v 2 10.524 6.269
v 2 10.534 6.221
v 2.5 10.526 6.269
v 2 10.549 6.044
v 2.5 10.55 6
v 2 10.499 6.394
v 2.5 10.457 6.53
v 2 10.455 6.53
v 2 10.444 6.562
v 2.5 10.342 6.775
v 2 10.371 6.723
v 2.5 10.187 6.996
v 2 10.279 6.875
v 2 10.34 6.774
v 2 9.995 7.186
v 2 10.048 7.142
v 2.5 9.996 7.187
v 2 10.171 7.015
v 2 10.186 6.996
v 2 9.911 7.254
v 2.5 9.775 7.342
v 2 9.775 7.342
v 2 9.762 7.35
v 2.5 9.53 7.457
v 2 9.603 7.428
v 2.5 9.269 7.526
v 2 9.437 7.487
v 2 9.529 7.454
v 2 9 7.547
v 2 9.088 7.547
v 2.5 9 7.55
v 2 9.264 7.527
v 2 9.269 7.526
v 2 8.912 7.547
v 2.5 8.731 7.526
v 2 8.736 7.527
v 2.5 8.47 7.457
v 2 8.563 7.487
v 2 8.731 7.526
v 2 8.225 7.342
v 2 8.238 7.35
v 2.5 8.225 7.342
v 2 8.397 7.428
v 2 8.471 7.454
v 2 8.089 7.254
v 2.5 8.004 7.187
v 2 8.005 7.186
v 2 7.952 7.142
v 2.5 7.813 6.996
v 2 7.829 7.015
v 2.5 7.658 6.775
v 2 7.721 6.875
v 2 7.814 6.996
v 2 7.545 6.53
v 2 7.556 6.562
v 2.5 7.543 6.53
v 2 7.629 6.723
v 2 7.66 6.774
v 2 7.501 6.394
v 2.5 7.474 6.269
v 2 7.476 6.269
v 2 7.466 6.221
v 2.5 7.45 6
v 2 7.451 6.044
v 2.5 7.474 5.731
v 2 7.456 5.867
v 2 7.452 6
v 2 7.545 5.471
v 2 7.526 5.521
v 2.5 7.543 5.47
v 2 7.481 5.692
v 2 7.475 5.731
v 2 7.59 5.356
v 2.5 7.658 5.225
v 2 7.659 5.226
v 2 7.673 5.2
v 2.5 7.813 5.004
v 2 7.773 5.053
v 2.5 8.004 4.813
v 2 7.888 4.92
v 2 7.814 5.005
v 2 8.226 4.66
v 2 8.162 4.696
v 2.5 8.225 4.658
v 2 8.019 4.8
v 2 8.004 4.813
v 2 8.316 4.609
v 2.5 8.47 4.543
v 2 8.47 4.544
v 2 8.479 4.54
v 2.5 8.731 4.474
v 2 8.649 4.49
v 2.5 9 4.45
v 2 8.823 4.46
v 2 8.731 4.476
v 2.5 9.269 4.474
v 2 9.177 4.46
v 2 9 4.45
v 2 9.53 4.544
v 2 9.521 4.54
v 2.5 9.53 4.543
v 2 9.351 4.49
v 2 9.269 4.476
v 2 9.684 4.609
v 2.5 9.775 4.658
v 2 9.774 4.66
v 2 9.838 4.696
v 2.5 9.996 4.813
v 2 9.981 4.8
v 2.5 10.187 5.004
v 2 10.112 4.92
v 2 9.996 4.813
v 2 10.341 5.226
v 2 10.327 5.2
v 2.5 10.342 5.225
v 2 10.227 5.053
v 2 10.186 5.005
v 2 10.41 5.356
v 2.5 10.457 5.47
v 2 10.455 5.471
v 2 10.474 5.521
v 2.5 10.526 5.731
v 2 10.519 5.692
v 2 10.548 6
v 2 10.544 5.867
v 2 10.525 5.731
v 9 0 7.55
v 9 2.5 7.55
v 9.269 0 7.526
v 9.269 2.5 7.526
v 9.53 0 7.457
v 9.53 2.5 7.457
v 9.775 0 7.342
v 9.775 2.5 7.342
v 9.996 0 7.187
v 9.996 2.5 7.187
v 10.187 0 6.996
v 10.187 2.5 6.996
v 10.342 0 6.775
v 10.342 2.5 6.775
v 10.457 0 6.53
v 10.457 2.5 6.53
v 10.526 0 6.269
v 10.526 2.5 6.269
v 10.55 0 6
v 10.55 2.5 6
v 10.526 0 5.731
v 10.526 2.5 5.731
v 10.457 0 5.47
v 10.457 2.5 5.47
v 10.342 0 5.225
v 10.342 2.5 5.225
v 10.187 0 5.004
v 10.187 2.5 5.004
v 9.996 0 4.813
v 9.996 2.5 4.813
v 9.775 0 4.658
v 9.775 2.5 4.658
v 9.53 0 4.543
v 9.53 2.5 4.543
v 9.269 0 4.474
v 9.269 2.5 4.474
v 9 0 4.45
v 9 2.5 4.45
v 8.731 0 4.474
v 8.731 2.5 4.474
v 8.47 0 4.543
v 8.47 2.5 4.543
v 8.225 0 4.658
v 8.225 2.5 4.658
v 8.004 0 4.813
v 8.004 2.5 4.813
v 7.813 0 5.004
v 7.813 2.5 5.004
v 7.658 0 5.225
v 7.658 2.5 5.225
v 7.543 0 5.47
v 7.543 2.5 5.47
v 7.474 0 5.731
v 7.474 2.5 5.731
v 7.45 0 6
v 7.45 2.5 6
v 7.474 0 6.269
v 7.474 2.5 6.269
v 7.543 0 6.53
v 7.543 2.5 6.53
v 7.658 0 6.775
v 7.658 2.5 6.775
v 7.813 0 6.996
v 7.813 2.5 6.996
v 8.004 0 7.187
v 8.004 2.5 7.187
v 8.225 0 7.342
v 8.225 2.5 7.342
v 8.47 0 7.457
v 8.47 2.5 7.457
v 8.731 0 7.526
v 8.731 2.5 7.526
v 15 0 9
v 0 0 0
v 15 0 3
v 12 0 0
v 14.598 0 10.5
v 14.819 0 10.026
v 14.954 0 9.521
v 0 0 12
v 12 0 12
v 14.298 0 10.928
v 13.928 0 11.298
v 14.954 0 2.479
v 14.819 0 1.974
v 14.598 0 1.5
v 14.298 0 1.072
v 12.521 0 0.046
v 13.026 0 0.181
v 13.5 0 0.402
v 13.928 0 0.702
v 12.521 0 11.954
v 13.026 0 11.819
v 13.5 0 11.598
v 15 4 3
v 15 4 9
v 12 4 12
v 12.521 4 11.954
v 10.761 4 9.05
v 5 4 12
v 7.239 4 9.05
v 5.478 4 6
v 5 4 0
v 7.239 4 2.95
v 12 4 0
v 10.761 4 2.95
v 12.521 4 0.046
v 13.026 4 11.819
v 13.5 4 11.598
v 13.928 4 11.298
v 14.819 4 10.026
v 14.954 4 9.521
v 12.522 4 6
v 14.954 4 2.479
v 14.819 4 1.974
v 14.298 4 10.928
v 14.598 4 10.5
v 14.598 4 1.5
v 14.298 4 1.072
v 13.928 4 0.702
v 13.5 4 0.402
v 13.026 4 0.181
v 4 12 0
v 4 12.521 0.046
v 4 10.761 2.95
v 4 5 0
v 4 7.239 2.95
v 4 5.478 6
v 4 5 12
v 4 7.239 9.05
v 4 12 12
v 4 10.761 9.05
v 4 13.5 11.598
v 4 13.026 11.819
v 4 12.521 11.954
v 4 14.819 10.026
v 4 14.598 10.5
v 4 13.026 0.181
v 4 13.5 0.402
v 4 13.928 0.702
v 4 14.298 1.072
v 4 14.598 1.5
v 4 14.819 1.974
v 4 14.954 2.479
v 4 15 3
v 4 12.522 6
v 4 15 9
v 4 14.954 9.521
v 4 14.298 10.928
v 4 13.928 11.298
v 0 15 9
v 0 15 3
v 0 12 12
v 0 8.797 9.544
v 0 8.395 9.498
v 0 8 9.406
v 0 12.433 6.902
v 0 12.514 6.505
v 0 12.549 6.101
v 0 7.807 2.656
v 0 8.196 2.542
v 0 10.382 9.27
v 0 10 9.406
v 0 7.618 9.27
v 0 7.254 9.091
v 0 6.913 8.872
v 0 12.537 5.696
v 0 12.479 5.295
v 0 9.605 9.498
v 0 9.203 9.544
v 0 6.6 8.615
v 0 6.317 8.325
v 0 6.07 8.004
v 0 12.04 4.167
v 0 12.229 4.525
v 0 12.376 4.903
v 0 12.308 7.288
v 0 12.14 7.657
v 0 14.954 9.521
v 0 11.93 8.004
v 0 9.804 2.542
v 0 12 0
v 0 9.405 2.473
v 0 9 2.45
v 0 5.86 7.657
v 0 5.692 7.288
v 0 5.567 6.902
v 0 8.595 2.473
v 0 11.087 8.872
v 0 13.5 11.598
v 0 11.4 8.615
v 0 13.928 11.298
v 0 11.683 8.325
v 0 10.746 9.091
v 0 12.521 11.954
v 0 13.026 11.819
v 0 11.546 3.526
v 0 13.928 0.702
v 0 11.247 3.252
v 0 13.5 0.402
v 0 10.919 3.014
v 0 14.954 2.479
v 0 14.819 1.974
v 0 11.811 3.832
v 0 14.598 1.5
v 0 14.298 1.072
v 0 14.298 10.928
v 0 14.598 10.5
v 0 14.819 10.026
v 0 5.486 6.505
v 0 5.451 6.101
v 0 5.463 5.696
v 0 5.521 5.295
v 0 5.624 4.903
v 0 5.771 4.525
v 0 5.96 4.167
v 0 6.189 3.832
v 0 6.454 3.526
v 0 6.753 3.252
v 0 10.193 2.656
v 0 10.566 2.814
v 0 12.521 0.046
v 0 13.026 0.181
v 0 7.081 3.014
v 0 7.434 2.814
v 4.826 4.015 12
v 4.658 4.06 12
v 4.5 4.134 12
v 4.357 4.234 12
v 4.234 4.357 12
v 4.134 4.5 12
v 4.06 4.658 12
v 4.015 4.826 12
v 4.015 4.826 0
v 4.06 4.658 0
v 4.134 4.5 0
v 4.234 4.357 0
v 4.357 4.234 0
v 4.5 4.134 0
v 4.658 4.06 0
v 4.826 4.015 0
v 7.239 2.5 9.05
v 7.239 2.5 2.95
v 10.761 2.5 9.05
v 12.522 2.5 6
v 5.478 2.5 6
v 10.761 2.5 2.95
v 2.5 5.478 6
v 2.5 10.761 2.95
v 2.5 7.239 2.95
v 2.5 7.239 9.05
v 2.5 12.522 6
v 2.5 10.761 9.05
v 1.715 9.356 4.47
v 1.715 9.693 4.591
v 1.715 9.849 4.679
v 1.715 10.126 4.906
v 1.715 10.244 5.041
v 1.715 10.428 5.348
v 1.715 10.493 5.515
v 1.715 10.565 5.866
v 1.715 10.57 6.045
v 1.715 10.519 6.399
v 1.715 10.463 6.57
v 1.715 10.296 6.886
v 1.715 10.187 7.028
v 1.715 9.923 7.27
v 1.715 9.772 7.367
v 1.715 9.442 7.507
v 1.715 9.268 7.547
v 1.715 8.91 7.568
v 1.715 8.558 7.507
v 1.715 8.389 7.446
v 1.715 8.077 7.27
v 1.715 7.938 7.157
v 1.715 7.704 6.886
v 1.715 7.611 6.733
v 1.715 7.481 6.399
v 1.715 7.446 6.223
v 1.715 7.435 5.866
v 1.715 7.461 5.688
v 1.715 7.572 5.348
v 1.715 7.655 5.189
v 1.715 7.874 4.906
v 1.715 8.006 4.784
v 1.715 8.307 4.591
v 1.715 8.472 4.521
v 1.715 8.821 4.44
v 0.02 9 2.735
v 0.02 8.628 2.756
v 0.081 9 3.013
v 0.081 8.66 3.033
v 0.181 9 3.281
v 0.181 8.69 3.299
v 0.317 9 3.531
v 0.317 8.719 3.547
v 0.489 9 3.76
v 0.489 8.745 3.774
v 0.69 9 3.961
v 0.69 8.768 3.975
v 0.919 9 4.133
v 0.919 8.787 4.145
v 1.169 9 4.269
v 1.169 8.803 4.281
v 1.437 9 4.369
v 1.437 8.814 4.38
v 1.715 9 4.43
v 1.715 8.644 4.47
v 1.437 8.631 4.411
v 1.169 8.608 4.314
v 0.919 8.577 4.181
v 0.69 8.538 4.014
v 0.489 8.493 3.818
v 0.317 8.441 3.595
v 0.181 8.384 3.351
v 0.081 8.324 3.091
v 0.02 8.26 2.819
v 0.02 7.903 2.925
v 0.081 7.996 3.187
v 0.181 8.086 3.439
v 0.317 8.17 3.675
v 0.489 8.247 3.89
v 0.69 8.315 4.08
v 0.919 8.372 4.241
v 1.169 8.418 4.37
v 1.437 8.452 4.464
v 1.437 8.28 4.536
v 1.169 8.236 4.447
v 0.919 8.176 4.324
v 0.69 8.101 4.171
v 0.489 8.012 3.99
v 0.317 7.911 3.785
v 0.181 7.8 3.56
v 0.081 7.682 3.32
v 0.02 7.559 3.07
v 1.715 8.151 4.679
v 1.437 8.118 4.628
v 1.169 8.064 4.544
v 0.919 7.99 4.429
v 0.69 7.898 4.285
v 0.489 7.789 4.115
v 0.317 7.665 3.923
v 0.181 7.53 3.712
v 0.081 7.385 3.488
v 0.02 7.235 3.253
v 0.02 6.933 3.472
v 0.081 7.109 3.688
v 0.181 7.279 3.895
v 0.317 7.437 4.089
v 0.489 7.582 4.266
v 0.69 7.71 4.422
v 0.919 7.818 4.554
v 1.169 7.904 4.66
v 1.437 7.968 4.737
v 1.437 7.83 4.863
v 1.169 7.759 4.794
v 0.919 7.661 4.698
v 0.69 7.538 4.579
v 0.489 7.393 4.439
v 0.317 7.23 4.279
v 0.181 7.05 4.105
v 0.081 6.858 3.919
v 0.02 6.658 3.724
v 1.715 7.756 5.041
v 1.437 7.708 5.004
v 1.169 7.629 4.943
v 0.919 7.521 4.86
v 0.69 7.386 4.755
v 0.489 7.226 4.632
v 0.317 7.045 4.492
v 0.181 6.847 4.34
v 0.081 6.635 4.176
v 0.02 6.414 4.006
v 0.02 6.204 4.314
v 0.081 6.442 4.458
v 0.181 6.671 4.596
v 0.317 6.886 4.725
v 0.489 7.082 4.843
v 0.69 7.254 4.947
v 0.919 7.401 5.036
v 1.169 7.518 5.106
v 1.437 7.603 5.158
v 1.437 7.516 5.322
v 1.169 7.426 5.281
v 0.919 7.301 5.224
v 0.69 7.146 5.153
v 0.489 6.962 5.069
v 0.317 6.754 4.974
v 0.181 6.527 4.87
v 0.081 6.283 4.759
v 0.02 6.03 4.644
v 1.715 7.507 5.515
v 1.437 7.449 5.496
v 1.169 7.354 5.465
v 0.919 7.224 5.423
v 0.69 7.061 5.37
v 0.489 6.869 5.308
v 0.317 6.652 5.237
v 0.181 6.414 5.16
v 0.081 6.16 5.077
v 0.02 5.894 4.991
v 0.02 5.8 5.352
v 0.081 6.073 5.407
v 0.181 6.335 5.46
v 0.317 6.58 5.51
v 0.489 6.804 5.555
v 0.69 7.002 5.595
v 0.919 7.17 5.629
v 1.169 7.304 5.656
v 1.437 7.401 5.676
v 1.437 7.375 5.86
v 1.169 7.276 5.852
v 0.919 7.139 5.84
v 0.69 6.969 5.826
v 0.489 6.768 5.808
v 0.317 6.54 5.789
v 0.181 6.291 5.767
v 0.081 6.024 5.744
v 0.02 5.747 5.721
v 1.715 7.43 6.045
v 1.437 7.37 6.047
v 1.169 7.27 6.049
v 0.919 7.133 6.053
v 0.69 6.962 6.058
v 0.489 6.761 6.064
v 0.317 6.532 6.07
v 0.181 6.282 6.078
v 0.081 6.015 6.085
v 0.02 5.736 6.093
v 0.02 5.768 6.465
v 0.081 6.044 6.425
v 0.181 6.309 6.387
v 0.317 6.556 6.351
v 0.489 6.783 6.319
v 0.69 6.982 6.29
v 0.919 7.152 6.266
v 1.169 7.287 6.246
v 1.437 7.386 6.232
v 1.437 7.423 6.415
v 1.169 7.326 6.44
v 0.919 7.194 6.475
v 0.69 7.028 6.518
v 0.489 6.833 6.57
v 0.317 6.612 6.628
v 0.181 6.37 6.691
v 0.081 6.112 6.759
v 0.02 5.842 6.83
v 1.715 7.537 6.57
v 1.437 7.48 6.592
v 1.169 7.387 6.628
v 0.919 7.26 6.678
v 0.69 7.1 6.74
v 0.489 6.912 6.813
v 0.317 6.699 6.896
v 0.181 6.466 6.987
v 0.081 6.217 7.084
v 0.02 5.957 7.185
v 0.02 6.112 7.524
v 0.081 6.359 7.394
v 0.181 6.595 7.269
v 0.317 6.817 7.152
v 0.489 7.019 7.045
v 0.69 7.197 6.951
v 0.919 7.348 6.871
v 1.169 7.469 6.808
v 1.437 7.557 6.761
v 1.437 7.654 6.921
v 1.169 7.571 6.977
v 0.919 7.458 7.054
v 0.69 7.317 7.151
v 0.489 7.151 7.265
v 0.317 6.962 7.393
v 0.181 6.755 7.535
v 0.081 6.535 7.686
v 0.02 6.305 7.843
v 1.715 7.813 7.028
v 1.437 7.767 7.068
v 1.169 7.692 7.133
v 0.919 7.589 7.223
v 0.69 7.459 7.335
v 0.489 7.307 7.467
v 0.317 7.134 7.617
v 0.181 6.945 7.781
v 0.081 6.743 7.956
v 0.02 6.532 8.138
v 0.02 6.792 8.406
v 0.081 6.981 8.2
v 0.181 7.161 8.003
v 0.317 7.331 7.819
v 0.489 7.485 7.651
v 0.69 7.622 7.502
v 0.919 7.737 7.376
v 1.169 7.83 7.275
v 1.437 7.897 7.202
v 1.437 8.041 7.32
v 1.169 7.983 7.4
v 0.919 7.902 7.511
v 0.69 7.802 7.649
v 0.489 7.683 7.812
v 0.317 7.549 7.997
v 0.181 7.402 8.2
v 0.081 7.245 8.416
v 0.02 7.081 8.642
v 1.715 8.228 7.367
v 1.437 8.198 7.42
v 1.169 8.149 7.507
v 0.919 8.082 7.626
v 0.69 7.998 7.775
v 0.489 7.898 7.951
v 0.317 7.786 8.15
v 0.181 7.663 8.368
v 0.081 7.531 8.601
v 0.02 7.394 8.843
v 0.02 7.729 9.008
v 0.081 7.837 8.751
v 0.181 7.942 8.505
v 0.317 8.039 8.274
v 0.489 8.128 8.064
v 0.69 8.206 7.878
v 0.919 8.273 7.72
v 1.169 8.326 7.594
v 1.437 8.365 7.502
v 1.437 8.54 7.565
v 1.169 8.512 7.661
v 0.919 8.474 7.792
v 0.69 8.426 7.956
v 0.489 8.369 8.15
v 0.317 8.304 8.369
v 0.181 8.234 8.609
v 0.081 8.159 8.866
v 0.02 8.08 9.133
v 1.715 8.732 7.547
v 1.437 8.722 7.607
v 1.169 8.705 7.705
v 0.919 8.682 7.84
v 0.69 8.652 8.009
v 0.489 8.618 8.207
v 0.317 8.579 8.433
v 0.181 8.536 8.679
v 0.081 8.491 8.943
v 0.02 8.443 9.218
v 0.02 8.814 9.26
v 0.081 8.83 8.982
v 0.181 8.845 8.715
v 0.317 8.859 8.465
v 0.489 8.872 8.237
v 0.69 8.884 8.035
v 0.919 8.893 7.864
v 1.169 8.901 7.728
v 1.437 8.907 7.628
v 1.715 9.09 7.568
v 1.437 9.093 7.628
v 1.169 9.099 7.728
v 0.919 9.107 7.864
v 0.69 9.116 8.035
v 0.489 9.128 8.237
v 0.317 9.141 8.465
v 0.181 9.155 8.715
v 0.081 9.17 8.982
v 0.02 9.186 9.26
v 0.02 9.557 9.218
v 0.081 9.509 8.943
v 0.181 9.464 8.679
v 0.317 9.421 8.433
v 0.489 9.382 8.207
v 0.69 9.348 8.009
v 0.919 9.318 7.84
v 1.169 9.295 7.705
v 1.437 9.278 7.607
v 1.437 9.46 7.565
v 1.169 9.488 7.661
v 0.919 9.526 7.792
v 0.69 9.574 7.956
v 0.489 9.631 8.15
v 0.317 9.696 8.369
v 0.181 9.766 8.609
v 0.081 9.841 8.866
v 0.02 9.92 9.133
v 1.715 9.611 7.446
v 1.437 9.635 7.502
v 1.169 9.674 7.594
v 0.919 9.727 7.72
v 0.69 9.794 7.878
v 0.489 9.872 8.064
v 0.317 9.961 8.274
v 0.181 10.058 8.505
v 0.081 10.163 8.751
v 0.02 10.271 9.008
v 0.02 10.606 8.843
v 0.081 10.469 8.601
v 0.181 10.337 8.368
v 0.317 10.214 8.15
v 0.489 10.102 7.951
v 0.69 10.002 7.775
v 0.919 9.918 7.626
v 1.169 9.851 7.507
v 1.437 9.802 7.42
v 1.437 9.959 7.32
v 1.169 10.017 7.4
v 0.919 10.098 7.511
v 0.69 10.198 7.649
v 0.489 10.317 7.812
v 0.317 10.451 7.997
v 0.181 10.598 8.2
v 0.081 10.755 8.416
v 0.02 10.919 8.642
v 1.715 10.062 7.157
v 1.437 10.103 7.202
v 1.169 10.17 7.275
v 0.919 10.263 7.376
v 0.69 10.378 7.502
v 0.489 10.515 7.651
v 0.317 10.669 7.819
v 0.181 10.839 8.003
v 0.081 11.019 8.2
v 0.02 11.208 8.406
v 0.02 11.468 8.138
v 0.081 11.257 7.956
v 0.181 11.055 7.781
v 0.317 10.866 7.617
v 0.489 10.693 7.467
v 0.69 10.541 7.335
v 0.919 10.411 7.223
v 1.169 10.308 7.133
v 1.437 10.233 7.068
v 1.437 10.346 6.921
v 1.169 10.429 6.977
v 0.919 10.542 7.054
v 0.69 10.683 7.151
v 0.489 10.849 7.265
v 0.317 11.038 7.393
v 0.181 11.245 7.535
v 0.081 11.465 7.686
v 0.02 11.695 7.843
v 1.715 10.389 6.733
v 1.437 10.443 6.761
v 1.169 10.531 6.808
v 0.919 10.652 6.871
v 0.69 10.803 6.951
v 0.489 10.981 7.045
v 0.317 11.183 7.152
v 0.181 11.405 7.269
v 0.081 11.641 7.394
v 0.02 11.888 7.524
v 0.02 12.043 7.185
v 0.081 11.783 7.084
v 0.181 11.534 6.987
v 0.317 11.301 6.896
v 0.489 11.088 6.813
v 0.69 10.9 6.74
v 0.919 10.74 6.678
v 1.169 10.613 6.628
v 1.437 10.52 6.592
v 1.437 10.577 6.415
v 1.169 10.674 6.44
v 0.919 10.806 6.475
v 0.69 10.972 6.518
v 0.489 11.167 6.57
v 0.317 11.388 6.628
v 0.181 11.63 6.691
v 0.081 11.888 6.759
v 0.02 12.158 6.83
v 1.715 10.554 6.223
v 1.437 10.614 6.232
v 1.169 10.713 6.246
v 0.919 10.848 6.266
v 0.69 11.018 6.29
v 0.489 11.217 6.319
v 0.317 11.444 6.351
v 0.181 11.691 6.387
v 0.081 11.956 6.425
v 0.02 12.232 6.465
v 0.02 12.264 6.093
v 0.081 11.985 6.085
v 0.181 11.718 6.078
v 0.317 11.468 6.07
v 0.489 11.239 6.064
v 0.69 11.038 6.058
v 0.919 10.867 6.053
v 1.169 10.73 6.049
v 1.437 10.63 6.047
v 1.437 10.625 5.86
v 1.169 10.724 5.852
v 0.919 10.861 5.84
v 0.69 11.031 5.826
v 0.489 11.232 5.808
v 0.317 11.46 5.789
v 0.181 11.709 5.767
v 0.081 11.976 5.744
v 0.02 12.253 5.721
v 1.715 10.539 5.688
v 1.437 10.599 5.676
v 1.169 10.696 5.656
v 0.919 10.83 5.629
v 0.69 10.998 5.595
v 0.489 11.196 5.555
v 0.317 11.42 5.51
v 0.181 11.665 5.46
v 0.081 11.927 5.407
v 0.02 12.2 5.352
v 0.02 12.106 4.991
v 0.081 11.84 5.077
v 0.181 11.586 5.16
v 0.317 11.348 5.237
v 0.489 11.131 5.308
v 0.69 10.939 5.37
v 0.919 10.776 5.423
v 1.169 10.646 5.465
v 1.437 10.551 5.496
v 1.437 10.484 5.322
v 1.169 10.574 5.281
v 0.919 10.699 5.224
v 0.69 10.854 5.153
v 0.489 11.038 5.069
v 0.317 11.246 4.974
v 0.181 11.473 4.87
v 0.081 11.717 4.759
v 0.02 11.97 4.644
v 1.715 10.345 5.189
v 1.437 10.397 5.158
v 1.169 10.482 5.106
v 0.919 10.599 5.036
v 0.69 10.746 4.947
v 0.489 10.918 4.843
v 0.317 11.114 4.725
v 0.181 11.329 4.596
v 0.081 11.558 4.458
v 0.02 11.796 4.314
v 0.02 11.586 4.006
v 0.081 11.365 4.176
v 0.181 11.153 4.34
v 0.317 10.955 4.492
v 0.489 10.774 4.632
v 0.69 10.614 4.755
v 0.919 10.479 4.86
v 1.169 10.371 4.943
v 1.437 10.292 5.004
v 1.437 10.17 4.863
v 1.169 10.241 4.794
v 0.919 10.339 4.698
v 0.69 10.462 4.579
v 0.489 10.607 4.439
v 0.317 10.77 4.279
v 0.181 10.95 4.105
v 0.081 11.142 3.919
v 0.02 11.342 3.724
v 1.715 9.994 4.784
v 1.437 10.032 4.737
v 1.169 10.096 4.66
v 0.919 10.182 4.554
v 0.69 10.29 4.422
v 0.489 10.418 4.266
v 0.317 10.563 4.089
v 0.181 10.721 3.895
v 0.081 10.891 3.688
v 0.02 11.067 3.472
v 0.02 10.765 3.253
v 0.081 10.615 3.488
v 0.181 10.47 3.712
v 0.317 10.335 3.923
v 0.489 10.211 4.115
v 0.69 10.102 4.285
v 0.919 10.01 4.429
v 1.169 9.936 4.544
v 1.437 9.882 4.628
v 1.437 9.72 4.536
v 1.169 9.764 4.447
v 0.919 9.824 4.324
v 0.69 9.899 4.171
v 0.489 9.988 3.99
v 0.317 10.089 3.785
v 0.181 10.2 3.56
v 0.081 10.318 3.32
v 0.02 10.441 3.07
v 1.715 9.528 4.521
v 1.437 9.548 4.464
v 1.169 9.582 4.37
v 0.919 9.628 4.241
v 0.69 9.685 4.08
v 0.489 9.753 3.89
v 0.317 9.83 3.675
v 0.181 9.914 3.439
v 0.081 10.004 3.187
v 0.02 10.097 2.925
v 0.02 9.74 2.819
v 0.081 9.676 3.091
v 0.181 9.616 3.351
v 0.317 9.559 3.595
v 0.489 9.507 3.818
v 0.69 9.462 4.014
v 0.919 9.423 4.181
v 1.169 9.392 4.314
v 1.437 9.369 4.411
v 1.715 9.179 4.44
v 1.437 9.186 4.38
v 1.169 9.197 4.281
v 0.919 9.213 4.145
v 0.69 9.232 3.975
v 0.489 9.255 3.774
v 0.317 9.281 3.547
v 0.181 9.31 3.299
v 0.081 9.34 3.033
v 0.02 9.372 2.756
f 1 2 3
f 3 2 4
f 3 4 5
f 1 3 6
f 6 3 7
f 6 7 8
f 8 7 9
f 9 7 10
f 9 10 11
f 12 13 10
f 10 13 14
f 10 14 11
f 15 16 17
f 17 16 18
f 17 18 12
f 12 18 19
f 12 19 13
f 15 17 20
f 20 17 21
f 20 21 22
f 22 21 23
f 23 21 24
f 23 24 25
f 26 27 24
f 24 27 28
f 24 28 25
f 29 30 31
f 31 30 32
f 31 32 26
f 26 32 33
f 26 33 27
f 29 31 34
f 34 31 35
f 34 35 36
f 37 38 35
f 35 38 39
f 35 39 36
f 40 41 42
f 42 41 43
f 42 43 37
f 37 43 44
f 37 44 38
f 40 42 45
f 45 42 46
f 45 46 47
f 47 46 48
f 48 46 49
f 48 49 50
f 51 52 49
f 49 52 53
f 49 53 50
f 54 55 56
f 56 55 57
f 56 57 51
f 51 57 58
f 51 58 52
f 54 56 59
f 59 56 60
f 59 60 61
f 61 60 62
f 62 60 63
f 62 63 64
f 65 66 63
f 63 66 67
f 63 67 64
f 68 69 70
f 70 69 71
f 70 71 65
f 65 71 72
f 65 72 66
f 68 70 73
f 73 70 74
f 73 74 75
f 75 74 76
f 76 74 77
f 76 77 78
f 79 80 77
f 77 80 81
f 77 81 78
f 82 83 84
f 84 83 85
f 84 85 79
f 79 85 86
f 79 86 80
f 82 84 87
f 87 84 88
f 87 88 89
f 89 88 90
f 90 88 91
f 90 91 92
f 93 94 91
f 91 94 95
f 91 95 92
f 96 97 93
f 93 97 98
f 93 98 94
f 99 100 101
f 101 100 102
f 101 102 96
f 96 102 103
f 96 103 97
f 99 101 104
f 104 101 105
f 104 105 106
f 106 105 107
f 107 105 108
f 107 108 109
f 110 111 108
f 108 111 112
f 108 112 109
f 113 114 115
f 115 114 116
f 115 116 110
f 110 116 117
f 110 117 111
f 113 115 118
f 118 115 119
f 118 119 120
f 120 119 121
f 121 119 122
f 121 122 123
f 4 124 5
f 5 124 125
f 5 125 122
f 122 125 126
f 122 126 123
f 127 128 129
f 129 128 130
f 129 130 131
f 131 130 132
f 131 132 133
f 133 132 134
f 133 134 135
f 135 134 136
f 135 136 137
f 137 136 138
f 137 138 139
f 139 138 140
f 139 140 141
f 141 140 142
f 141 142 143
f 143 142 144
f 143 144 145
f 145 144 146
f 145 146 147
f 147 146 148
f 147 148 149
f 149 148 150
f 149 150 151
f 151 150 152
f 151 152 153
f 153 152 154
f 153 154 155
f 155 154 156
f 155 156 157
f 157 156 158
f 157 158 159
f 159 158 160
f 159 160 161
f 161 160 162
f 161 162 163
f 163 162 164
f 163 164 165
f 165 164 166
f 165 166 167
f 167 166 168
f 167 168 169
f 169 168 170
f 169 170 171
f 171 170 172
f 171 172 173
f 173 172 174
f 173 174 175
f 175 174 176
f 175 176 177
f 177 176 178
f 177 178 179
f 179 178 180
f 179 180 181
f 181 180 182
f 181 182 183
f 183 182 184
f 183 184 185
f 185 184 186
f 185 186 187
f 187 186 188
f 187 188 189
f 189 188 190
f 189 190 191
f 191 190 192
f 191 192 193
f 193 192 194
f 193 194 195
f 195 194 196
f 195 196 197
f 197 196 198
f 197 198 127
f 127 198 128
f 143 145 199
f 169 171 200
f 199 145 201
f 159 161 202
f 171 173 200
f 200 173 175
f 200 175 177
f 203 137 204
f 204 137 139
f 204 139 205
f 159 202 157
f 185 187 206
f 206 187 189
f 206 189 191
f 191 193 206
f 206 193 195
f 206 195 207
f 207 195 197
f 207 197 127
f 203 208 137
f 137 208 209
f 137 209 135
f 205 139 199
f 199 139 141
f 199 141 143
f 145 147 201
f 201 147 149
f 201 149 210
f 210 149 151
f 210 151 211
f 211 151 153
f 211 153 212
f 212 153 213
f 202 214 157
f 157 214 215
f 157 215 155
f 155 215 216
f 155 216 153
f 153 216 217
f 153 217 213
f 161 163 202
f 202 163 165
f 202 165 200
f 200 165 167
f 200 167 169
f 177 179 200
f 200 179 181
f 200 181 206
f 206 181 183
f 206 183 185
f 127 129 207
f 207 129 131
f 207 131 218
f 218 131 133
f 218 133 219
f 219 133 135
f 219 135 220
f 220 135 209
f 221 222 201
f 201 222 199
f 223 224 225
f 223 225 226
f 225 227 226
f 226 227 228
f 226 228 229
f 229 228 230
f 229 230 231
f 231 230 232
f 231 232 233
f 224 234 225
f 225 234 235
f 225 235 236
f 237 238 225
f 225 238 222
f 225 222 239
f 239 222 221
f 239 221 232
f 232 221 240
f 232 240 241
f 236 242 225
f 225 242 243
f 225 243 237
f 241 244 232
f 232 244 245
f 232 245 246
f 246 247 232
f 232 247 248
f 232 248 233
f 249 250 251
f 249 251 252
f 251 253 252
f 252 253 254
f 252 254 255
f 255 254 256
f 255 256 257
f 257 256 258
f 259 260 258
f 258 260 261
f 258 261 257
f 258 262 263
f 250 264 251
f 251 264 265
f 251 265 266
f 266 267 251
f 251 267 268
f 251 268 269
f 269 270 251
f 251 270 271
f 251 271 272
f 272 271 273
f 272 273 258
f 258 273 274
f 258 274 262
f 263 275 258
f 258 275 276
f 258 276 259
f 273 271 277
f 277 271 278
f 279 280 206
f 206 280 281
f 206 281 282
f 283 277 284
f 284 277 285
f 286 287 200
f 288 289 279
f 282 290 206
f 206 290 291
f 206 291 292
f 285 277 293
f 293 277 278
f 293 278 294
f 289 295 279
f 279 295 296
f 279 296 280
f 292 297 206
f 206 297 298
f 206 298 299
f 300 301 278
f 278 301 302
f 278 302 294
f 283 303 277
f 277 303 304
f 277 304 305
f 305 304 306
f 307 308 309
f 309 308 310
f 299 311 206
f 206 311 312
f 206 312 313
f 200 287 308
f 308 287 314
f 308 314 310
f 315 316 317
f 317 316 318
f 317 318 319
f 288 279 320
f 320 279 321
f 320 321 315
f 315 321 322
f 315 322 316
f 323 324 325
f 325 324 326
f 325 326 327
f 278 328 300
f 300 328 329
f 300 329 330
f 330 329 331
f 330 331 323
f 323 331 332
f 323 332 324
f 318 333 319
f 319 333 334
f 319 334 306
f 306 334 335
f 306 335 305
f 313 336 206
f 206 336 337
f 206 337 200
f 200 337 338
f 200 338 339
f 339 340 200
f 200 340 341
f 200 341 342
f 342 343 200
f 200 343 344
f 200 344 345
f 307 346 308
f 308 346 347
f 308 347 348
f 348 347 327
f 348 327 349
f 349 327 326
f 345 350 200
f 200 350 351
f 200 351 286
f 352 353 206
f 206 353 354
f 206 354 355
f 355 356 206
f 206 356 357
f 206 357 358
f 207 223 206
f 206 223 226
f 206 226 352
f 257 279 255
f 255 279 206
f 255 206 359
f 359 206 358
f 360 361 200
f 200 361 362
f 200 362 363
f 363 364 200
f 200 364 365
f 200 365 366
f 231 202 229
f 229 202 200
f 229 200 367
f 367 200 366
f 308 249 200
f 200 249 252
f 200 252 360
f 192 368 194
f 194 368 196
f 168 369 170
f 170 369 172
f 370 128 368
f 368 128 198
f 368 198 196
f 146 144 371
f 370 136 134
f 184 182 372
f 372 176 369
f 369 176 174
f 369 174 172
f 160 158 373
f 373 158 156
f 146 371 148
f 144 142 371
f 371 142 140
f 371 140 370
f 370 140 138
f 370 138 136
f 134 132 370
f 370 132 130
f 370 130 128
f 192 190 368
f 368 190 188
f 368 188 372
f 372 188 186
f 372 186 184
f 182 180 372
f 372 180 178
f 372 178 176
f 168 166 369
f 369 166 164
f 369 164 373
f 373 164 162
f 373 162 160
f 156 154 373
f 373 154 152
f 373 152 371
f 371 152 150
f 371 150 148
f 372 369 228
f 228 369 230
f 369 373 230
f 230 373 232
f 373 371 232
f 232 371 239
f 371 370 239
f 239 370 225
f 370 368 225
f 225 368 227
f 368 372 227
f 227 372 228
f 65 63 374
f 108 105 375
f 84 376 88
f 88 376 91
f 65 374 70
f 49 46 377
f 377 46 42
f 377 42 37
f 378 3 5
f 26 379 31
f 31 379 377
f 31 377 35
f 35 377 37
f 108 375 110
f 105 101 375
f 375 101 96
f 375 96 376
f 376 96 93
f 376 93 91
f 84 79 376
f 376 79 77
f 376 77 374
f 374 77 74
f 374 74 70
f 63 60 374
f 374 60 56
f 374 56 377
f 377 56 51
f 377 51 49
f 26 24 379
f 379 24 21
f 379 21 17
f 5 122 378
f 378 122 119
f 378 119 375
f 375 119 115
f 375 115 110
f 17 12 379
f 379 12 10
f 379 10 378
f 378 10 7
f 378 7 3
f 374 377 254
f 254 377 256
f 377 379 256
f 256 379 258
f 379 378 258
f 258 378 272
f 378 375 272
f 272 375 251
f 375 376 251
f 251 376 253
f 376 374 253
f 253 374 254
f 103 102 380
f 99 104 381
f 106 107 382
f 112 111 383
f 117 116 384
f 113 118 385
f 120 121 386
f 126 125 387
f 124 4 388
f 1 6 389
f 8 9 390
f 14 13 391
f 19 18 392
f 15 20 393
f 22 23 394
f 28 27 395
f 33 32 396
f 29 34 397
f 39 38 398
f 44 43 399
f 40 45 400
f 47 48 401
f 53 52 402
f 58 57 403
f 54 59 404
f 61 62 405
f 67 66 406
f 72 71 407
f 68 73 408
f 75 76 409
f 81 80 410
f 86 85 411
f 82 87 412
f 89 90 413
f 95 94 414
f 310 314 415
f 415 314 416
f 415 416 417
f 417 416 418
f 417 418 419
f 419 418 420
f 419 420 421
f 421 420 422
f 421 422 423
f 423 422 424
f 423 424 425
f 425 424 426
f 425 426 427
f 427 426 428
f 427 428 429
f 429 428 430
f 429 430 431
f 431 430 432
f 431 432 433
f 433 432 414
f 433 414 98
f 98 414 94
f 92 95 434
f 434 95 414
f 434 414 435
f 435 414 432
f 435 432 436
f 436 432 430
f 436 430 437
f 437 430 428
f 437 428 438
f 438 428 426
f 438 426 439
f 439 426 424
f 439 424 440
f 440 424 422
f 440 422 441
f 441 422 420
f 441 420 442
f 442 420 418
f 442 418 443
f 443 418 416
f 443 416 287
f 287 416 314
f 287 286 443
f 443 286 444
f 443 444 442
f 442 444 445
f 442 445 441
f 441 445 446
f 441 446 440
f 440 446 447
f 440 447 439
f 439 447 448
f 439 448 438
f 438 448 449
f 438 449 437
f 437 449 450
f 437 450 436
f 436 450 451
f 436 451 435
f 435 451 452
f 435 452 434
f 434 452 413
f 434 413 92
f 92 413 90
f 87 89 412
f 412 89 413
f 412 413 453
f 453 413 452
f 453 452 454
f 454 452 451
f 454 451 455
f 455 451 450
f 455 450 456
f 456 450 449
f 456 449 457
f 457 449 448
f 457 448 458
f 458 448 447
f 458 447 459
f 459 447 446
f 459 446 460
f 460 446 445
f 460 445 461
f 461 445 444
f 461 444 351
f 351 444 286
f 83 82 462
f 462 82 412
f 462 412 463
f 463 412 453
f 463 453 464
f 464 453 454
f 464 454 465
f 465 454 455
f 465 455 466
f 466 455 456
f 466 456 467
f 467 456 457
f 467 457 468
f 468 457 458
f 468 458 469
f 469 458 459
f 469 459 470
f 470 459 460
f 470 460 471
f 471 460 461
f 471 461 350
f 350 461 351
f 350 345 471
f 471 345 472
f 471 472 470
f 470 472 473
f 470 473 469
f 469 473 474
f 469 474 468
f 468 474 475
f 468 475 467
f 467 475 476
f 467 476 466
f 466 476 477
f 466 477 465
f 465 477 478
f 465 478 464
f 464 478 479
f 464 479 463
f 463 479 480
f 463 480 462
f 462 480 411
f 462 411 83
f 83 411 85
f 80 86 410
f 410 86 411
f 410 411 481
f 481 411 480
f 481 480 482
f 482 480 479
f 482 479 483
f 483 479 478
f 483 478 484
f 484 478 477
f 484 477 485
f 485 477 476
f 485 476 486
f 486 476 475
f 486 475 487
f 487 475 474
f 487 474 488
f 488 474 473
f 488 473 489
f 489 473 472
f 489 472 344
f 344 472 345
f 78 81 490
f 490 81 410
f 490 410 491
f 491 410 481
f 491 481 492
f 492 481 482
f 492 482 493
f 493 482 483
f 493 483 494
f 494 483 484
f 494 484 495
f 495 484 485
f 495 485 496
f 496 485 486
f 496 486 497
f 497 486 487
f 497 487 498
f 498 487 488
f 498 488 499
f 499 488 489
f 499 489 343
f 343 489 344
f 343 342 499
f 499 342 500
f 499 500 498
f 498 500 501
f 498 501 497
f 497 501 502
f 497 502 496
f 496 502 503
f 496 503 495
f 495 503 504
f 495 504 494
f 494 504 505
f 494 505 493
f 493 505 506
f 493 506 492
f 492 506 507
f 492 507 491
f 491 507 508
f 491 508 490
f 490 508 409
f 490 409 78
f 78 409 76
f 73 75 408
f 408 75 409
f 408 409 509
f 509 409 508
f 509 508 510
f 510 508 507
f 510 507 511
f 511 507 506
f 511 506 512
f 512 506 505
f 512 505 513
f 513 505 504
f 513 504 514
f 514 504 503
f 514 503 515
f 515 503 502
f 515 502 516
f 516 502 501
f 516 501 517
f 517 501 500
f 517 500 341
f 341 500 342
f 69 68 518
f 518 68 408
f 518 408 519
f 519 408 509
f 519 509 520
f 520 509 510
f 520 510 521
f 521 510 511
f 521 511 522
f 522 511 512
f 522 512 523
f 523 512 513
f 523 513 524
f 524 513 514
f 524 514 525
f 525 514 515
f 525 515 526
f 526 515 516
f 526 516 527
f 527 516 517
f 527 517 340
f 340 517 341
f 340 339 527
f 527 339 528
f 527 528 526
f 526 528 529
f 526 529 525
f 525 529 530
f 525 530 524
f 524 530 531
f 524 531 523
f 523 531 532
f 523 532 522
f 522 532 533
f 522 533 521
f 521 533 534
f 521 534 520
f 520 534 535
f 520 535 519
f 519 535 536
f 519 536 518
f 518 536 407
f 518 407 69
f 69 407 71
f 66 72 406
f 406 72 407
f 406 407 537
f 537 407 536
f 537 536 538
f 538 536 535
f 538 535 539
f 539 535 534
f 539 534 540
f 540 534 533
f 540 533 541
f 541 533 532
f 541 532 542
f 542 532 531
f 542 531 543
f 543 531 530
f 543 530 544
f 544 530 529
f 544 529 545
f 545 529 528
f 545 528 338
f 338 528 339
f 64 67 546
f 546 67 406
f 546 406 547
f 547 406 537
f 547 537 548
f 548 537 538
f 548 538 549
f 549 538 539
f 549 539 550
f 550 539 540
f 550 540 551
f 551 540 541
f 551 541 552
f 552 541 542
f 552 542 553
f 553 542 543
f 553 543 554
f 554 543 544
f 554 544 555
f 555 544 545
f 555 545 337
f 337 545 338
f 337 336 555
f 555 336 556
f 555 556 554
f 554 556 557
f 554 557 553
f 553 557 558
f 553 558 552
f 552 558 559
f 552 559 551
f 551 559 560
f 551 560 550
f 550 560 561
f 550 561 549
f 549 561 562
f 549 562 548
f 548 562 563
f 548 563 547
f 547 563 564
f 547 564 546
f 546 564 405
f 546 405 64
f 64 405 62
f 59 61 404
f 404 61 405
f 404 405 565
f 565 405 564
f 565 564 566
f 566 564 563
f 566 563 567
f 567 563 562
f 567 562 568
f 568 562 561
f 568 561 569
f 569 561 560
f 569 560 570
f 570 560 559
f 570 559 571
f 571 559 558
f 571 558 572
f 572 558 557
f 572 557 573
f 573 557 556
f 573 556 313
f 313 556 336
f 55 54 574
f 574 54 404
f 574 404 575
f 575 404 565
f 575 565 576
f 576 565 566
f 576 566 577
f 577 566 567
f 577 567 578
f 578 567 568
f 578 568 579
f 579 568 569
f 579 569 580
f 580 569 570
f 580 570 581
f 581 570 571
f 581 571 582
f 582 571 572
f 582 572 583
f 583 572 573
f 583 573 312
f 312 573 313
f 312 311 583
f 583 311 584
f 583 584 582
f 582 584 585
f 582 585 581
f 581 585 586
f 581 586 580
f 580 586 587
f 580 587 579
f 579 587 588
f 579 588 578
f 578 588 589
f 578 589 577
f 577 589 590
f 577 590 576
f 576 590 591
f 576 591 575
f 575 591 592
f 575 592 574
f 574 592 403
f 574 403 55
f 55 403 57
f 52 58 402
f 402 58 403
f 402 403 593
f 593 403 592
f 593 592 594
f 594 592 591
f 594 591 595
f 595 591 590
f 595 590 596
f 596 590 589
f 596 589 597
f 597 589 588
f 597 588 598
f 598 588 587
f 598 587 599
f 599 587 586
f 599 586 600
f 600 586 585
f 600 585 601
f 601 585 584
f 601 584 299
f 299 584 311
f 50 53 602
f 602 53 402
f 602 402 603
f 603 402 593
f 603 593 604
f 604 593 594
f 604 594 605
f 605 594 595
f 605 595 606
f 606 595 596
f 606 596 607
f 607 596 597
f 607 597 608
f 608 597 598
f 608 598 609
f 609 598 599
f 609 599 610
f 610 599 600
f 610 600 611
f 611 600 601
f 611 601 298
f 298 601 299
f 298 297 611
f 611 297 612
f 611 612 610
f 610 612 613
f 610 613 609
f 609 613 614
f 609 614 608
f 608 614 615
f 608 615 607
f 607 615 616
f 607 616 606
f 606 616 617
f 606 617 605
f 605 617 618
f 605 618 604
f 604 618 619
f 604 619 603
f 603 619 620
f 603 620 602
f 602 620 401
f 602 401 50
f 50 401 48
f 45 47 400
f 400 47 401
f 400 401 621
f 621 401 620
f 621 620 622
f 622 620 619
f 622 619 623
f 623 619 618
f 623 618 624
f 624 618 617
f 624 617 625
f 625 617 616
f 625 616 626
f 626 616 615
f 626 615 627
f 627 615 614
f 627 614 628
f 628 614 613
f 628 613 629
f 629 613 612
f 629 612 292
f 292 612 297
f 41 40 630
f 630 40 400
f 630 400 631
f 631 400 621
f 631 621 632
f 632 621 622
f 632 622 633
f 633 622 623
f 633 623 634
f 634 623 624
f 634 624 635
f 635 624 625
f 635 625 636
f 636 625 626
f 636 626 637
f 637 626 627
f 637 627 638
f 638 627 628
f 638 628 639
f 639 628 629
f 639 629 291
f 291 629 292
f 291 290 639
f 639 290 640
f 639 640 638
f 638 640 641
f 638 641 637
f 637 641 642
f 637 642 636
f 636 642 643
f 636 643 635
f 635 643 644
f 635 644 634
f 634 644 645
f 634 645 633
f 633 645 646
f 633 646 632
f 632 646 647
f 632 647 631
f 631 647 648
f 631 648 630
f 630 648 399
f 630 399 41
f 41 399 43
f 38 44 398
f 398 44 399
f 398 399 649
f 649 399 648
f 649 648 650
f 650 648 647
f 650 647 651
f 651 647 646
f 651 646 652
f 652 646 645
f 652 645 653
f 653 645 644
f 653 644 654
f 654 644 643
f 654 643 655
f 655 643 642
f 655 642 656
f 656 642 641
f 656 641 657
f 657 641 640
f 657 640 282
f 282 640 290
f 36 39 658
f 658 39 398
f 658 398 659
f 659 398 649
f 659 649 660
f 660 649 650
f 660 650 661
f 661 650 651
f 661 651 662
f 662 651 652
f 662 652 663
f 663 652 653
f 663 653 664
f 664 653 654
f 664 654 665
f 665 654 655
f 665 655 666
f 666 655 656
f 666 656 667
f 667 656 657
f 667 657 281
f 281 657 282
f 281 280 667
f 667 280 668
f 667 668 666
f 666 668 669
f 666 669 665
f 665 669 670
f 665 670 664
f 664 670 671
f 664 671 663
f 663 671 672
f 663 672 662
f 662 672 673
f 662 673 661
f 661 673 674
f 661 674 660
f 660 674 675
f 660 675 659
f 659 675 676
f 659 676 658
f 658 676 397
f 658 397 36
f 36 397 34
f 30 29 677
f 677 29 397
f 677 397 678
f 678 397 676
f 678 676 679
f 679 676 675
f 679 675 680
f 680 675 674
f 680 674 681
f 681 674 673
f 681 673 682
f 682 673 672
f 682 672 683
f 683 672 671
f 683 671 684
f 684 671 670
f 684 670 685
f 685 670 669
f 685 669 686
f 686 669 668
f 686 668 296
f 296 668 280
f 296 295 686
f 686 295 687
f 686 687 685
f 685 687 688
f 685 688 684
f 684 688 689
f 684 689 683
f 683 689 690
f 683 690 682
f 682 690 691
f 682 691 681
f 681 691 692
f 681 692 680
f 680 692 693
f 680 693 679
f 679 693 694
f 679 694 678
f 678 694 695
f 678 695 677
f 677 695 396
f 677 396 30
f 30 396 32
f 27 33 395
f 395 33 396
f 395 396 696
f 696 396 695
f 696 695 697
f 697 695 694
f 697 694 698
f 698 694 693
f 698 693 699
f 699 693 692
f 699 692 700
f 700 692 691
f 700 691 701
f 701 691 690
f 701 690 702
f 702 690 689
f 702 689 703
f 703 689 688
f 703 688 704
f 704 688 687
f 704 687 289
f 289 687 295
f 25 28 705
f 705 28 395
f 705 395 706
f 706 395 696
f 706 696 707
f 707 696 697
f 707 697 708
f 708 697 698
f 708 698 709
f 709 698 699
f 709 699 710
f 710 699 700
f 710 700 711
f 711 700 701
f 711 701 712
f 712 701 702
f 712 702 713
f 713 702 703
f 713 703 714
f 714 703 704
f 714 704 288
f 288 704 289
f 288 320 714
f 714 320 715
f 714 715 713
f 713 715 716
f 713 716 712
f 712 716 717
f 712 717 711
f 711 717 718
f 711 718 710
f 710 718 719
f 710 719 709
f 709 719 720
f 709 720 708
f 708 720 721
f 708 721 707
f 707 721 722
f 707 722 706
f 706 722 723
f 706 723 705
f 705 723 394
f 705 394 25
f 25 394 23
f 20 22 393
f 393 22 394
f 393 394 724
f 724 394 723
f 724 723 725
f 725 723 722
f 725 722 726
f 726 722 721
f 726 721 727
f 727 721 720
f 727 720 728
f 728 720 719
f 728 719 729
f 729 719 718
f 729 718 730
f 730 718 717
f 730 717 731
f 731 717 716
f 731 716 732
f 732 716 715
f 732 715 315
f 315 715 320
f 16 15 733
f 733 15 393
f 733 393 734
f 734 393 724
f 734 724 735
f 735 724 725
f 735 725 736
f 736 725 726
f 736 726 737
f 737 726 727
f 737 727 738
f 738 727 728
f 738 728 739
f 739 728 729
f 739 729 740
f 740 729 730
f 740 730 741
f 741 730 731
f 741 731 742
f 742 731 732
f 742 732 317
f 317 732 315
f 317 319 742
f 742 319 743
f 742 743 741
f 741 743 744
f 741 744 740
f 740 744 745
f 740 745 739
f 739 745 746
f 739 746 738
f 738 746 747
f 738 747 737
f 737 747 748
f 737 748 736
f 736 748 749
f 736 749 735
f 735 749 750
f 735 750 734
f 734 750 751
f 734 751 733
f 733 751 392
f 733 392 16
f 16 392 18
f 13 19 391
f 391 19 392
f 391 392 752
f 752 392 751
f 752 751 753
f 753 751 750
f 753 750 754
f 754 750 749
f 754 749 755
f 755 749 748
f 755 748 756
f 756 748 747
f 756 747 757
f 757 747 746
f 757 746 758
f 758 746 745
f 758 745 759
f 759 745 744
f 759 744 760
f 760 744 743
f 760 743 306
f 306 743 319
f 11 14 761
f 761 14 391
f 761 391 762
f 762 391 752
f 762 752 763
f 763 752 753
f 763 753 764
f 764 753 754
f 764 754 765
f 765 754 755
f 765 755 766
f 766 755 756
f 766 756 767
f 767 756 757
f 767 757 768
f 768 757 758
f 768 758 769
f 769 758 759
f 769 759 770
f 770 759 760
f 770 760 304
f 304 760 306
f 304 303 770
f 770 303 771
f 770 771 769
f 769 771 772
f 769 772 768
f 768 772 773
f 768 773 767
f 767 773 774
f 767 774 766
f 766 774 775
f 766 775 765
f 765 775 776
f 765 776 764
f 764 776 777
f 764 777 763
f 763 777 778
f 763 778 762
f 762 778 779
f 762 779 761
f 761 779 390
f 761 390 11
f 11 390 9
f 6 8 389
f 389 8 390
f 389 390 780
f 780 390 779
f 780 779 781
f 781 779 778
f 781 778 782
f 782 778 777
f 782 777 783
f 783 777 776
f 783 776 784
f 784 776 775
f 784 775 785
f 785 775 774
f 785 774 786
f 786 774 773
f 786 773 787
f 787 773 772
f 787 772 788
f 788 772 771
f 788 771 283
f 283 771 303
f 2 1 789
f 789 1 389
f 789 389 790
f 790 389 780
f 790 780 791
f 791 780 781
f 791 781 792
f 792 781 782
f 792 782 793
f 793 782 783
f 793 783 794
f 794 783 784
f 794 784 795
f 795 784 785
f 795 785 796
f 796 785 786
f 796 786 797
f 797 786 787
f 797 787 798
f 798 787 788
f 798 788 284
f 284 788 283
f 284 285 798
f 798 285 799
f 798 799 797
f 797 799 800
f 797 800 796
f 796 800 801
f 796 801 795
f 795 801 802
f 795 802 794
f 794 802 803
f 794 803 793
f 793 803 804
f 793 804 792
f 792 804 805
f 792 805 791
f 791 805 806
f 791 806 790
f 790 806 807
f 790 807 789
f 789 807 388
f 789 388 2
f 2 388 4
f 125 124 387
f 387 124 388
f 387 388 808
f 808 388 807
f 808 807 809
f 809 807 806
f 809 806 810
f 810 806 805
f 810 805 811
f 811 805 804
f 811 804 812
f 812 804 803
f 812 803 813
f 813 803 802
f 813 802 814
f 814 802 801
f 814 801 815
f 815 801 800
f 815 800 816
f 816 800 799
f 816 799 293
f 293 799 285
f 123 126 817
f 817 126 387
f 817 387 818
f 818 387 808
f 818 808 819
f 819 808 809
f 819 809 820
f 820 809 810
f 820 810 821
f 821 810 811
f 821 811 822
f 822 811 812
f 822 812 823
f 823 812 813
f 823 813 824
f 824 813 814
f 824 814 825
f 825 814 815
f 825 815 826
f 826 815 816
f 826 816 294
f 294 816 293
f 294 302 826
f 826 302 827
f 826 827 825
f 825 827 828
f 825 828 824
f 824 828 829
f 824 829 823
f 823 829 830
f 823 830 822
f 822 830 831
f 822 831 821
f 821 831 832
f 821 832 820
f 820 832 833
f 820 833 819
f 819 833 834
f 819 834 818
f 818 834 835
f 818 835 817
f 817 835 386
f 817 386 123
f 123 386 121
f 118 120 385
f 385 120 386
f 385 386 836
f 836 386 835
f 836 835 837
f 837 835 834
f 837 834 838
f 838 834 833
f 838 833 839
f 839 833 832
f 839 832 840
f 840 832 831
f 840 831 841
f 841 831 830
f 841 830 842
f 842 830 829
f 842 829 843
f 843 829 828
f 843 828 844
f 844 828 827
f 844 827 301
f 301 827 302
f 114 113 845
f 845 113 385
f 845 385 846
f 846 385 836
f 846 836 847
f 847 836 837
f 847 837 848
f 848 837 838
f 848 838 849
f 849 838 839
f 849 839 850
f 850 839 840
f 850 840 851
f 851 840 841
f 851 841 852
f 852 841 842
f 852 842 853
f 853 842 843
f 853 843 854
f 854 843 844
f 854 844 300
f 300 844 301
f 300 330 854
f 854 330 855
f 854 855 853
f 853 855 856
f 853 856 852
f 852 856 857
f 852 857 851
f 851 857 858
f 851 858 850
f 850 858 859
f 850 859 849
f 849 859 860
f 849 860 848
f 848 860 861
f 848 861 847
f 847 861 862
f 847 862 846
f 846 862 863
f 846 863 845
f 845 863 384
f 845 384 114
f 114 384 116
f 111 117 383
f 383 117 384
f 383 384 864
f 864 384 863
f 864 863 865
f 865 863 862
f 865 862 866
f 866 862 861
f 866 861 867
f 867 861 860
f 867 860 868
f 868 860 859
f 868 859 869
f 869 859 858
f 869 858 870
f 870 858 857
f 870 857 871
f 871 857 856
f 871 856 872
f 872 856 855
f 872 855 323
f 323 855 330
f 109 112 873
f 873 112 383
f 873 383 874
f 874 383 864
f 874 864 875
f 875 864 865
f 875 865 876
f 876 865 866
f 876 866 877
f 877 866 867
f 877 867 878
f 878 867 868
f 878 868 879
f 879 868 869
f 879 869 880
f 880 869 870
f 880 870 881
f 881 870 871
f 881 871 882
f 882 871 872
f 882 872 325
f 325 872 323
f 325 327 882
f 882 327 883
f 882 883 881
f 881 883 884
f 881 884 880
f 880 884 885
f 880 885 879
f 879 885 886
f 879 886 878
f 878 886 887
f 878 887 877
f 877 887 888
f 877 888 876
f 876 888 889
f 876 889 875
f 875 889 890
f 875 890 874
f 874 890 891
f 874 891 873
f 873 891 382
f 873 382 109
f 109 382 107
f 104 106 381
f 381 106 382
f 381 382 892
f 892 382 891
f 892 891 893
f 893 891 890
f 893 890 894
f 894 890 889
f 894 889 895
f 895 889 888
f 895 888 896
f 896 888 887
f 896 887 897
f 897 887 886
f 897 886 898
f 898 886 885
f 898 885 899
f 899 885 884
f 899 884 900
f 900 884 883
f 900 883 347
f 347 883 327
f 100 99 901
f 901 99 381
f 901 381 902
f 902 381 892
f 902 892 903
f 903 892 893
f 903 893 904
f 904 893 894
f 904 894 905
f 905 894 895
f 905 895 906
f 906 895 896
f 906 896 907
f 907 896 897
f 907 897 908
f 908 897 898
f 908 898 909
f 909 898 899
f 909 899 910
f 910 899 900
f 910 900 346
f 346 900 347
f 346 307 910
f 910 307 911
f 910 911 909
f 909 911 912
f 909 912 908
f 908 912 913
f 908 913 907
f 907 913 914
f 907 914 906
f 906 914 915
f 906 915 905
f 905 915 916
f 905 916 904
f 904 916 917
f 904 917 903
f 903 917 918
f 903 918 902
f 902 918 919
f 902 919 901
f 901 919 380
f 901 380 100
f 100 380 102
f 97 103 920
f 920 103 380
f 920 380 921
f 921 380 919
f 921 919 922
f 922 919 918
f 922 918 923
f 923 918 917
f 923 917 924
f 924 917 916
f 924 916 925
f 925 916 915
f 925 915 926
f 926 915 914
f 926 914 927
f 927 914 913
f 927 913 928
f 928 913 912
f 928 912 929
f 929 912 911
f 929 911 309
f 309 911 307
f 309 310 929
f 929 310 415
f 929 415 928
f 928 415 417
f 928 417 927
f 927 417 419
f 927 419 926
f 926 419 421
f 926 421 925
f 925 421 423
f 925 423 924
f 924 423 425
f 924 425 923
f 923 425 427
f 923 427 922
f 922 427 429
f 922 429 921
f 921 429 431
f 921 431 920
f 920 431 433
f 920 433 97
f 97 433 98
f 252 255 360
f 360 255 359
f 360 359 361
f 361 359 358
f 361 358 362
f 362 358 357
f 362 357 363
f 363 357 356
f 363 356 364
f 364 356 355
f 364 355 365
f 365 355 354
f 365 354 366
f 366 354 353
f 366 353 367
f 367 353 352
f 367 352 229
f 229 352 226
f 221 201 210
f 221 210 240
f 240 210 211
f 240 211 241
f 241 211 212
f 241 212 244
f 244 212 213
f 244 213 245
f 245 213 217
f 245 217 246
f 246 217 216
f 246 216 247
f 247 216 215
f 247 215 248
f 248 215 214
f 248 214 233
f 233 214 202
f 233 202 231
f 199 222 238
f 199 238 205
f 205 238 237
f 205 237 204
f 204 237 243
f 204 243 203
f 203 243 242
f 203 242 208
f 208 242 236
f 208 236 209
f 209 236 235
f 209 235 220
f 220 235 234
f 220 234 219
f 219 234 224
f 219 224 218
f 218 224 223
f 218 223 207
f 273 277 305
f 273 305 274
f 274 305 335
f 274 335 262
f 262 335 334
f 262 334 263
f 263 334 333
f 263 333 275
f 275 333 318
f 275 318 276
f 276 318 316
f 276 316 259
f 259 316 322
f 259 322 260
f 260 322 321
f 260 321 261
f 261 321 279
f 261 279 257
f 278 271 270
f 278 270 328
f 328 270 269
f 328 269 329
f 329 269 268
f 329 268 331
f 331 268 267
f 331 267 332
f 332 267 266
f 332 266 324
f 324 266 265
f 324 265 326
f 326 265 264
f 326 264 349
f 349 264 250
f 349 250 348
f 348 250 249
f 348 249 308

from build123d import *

# Parameters (mm, degrees)
BOSS_EXTRUDE1_DEPTH = 12
SKETCH2_R           = 1.55
CUT_EXTRUDE1_DEPTH  = 23.135943621
CUT_EXTRUDE2_DEPTH  = 1.5
SKETCH4_R           = 1.55
CUT_EXTRUDE3_DEPTH  = 23.135943621
CUT_EXTRUDE4_DEPTH  = 1.5
FILLET1_R           = 2
FILLET2_R           = 1
FILLET3_R           = 3


with BuildPart() as part:
    # Sketch1 → Boss-Extrude1 (new body)
    with BuildSketch(Plane.XY):
        Polygon((0, 0), (0, 15), (4, 15), (4, 4), (15, 4), (15, 0), align=None)
    extrude(amount=BOSS_EXTRUDE1_DEPTH)

    # Sketch2 → Cut-Extrude1 (cut, through all)
    with BuildSketch(Plane(origin=(0, 4, 0), x_dir=(1, 0, 0), z_dir=(0, 1, 0))):
        with Locations(Location((9, -6, 0), (0, 0, 270))):
            Circle(SKETCH2_R)
    extrude(amount=-CUT_EXTRUDE1_DEPTH, mode=Mode.SUBTRACT)

    # Sketch3 → Cut-Extrude2 (cut)
    with BuildSketch(Plane(origin=(0, 4, 0), x_dir=(1, 0, 0), z_dir=(0, 1, 0))):
        Polygon((5.478163358, -6), (7.239081679, -9.05), (10.760918321, -9.05), (12.521836642, -6), (10.760918321, -2.95), (7.239081679, -2.95), align=None)
    extrude(amount=-CUT_EXTRUDE2_DEPTH, mode=Mode.SUBTRACT)

    # Sketch4 → Cut-Extrude3 (cut, through all)
    with BuildSketch(Plane(origin=(4, 0, 0), x_dir=(0, 0, -1), z_dir=(1, 0, 0))):
        with Locations(Location((-6, 9, 0), (0, 0, 90))):
            Circle(SKETCH4_R)
    extrude(amount=-CUT_EXTRUDE3_DEPTH, mode=Mode.SUBTRACT)

    # Sketch5 → Cut-Extrude4 (cut)
    with BuildSketch(Plane(origin=(4, 0, 0), x_dir=(0, 0, -1), z_dir=(1, 0, 0))):
        Polygon((-6, 5.478163358), (-2.95, 7.239081679), (-2.95, 10.760918321), (-6, 12.521836642), (-9.05, 10.760918321), (-9.05, 7.239081679), align=None)
    extrude(amount=-CUT_EXTRUDE4_DEPTH, mode=Mode.SUBTRACT)

    # Fillet1
    fillet1_edges = [part.edges().sort_by_distance(p)[0] for p in [
        (0, 7.45, 6),
    ]]
    fillet(fillet1_edges, radius=FILLET1_R)

    # Fillet2
    fillet2_edges = [part.edges().sort_by_distance(p)[0] for p in [
        (4, 4, 6),
    ]]
    fillet(fillet2_edges, radius=FILLET2_R)

    # Fillet3
    fillet3_edges = [part.edges().sort_by_distance(p)[0] for p in [
        (2, 15, 12),
        (2, 15, 0),
        (15, 2, 12),
        (15, 2, 0),
    ]]
    fillet(fillet3_edges, radius=FILLET3_R)


solid = part.part
